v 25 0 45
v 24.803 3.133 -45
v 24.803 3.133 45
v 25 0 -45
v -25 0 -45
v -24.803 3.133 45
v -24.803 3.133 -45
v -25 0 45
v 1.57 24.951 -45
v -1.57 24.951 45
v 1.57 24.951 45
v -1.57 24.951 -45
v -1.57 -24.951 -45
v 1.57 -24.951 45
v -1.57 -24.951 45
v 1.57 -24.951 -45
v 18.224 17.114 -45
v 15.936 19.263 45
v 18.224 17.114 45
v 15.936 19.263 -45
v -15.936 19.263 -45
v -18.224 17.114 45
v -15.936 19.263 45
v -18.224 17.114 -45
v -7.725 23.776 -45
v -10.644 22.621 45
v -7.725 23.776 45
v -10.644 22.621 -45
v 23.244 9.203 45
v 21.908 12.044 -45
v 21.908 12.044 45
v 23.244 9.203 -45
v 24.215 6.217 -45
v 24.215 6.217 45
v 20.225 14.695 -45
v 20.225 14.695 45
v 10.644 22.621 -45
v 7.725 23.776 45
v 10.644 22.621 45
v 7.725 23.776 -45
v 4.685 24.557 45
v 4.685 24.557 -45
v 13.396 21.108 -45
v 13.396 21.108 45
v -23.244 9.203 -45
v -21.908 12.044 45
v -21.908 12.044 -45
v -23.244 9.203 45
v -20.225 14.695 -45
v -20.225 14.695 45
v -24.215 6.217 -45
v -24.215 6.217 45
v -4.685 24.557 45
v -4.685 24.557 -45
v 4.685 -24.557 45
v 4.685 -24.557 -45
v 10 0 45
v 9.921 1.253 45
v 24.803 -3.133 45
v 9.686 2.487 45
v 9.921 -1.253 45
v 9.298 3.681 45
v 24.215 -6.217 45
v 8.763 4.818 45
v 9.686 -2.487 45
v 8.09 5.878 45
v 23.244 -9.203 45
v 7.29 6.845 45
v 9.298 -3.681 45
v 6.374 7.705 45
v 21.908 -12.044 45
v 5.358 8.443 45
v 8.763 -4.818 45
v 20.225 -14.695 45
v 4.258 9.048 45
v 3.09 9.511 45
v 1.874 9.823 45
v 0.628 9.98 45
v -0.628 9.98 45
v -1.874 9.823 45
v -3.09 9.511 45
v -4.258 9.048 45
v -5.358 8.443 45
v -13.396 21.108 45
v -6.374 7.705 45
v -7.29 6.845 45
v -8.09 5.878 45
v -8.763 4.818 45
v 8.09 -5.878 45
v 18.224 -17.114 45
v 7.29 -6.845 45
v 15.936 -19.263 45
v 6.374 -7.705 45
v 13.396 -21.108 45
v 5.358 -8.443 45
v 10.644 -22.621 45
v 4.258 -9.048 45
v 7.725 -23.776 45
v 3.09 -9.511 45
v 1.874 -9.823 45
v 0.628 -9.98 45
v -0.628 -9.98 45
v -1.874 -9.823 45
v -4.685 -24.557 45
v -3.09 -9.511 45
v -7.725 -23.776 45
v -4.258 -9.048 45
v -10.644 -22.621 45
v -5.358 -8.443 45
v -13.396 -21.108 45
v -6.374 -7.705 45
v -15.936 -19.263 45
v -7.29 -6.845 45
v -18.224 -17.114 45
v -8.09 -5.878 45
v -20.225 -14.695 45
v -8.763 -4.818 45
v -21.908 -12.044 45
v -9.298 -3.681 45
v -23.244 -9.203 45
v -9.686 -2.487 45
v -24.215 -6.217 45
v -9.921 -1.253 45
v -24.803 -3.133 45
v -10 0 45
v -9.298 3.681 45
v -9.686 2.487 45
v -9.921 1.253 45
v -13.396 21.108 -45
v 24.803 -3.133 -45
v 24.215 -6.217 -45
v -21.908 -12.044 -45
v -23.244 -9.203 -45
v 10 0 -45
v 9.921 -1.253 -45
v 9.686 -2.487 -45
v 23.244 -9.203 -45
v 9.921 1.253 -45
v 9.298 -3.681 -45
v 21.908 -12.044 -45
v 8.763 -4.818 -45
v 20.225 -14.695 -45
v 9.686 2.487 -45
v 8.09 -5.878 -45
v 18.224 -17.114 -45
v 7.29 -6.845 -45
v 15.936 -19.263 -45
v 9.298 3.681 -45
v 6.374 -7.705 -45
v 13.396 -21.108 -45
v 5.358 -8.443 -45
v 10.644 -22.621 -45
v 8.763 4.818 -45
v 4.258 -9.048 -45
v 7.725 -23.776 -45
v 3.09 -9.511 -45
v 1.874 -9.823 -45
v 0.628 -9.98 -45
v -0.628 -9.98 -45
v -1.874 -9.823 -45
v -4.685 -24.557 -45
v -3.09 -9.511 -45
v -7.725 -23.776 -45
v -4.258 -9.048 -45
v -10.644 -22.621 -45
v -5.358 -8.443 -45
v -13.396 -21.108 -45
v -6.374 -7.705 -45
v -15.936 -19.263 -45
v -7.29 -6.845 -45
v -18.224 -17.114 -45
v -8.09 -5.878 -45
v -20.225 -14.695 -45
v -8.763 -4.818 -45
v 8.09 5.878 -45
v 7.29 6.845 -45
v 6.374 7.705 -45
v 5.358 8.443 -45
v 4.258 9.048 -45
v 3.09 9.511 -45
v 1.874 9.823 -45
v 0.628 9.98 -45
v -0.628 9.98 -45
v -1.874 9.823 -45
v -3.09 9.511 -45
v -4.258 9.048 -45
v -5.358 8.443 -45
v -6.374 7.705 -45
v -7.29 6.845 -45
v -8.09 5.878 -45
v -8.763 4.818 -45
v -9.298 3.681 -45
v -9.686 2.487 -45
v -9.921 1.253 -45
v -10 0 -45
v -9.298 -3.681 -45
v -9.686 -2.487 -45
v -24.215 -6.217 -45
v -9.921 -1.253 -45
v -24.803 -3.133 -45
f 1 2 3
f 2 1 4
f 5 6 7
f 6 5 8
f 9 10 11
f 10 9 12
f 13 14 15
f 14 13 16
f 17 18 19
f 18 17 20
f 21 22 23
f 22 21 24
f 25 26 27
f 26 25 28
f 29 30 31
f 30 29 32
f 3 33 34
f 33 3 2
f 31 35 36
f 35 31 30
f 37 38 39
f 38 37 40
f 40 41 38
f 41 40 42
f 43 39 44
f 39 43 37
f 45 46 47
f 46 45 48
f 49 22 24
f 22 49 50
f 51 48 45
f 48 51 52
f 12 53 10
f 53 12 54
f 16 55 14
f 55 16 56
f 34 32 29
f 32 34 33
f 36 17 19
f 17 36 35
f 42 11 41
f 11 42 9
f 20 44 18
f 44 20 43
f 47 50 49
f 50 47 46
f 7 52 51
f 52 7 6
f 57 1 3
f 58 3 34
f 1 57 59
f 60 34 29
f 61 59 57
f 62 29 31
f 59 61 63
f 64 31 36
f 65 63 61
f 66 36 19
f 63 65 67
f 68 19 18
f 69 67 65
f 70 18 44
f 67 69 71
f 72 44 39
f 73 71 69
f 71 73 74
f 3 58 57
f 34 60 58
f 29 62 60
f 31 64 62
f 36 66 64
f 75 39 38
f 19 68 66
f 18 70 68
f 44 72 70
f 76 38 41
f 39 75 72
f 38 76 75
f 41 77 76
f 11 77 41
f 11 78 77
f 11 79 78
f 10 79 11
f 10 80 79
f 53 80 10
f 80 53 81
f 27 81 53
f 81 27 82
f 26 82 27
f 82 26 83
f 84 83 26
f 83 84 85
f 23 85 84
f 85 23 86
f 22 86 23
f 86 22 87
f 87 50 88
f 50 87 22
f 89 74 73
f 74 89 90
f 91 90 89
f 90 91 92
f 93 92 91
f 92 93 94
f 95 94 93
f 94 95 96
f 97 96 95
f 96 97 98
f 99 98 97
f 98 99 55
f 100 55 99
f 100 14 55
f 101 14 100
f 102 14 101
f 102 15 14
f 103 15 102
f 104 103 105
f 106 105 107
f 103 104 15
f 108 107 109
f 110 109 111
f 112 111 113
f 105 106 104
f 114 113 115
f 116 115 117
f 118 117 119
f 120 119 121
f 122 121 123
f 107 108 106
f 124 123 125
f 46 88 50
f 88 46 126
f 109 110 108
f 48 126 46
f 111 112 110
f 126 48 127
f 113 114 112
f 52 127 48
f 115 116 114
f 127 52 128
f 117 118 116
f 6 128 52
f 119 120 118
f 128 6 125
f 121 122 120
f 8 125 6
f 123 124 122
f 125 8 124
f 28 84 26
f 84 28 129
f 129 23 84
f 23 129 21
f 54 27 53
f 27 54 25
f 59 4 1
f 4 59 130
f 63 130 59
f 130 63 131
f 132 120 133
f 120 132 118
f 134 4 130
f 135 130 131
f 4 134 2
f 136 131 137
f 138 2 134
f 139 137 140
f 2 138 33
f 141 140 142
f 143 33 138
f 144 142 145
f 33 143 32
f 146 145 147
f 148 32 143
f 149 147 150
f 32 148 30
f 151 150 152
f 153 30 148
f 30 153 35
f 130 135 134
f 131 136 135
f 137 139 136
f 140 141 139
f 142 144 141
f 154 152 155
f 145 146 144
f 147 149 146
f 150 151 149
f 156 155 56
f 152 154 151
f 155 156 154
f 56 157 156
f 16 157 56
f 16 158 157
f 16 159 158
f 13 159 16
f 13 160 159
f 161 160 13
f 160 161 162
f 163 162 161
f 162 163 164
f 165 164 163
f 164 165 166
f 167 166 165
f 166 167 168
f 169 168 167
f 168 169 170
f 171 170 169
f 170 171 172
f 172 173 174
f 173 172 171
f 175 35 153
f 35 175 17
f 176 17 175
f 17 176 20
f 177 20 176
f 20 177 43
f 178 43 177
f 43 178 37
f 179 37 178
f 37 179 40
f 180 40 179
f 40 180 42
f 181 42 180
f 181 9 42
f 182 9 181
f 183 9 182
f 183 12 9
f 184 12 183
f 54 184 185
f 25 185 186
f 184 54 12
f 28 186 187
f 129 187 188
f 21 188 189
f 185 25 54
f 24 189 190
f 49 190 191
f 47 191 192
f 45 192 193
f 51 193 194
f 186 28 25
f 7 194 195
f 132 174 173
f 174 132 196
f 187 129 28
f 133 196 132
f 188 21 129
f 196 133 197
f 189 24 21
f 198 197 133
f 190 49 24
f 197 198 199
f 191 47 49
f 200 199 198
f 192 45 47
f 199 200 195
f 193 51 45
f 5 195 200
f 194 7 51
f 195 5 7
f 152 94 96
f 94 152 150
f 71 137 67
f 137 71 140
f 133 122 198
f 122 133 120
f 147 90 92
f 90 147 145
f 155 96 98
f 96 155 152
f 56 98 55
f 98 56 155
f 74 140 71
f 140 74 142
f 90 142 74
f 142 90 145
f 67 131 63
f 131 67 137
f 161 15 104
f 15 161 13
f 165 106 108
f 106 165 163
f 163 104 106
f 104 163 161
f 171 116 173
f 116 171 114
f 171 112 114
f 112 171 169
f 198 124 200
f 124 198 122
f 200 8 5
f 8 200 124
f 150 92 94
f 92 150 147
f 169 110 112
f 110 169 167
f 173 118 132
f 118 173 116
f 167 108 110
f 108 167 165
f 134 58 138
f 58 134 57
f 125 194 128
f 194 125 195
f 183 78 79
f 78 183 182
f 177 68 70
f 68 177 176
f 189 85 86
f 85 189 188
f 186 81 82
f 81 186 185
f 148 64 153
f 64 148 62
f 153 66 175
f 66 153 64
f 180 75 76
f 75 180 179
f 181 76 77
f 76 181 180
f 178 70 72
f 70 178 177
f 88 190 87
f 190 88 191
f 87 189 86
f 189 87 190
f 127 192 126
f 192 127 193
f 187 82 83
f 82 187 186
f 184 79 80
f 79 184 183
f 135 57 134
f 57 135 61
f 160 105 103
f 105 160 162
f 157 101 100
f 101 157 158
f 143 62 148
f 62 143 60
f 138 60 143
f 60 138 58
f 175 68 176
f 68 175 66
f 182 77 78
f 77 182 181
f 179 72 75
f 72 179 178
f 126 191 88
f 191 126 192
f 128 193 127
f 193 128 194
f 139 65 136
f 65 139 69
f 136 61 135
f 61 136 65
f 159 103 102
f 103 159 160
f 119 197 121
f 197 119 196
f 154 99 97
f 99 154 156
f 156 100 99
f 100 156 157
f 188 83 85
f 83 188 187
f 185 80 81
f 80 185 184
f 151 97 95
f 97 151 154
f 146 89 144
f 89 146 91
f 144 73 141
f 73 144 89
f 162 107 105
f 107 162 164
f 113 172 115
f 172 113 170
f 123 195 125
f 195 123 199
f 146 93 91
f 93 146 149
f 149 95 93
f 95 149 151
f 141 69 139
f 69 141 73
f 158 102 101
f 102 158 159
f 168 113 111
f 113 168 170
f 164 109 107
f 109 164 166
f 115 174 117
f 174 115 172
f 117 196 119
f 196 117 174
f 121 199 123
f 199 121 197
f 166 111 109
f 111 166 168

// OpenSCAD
$fn = 50;


difference() {
	union() {
		translate(v = [0, 0, -45.0000000000]) {
			cylinder(h = 90, r = 25.0000000000);
		}
	}
	union() {
		translate(v = [0, 0, -100.0000000000]) {
			cylinder(h = 200, r = 10);
		}
	}
}
